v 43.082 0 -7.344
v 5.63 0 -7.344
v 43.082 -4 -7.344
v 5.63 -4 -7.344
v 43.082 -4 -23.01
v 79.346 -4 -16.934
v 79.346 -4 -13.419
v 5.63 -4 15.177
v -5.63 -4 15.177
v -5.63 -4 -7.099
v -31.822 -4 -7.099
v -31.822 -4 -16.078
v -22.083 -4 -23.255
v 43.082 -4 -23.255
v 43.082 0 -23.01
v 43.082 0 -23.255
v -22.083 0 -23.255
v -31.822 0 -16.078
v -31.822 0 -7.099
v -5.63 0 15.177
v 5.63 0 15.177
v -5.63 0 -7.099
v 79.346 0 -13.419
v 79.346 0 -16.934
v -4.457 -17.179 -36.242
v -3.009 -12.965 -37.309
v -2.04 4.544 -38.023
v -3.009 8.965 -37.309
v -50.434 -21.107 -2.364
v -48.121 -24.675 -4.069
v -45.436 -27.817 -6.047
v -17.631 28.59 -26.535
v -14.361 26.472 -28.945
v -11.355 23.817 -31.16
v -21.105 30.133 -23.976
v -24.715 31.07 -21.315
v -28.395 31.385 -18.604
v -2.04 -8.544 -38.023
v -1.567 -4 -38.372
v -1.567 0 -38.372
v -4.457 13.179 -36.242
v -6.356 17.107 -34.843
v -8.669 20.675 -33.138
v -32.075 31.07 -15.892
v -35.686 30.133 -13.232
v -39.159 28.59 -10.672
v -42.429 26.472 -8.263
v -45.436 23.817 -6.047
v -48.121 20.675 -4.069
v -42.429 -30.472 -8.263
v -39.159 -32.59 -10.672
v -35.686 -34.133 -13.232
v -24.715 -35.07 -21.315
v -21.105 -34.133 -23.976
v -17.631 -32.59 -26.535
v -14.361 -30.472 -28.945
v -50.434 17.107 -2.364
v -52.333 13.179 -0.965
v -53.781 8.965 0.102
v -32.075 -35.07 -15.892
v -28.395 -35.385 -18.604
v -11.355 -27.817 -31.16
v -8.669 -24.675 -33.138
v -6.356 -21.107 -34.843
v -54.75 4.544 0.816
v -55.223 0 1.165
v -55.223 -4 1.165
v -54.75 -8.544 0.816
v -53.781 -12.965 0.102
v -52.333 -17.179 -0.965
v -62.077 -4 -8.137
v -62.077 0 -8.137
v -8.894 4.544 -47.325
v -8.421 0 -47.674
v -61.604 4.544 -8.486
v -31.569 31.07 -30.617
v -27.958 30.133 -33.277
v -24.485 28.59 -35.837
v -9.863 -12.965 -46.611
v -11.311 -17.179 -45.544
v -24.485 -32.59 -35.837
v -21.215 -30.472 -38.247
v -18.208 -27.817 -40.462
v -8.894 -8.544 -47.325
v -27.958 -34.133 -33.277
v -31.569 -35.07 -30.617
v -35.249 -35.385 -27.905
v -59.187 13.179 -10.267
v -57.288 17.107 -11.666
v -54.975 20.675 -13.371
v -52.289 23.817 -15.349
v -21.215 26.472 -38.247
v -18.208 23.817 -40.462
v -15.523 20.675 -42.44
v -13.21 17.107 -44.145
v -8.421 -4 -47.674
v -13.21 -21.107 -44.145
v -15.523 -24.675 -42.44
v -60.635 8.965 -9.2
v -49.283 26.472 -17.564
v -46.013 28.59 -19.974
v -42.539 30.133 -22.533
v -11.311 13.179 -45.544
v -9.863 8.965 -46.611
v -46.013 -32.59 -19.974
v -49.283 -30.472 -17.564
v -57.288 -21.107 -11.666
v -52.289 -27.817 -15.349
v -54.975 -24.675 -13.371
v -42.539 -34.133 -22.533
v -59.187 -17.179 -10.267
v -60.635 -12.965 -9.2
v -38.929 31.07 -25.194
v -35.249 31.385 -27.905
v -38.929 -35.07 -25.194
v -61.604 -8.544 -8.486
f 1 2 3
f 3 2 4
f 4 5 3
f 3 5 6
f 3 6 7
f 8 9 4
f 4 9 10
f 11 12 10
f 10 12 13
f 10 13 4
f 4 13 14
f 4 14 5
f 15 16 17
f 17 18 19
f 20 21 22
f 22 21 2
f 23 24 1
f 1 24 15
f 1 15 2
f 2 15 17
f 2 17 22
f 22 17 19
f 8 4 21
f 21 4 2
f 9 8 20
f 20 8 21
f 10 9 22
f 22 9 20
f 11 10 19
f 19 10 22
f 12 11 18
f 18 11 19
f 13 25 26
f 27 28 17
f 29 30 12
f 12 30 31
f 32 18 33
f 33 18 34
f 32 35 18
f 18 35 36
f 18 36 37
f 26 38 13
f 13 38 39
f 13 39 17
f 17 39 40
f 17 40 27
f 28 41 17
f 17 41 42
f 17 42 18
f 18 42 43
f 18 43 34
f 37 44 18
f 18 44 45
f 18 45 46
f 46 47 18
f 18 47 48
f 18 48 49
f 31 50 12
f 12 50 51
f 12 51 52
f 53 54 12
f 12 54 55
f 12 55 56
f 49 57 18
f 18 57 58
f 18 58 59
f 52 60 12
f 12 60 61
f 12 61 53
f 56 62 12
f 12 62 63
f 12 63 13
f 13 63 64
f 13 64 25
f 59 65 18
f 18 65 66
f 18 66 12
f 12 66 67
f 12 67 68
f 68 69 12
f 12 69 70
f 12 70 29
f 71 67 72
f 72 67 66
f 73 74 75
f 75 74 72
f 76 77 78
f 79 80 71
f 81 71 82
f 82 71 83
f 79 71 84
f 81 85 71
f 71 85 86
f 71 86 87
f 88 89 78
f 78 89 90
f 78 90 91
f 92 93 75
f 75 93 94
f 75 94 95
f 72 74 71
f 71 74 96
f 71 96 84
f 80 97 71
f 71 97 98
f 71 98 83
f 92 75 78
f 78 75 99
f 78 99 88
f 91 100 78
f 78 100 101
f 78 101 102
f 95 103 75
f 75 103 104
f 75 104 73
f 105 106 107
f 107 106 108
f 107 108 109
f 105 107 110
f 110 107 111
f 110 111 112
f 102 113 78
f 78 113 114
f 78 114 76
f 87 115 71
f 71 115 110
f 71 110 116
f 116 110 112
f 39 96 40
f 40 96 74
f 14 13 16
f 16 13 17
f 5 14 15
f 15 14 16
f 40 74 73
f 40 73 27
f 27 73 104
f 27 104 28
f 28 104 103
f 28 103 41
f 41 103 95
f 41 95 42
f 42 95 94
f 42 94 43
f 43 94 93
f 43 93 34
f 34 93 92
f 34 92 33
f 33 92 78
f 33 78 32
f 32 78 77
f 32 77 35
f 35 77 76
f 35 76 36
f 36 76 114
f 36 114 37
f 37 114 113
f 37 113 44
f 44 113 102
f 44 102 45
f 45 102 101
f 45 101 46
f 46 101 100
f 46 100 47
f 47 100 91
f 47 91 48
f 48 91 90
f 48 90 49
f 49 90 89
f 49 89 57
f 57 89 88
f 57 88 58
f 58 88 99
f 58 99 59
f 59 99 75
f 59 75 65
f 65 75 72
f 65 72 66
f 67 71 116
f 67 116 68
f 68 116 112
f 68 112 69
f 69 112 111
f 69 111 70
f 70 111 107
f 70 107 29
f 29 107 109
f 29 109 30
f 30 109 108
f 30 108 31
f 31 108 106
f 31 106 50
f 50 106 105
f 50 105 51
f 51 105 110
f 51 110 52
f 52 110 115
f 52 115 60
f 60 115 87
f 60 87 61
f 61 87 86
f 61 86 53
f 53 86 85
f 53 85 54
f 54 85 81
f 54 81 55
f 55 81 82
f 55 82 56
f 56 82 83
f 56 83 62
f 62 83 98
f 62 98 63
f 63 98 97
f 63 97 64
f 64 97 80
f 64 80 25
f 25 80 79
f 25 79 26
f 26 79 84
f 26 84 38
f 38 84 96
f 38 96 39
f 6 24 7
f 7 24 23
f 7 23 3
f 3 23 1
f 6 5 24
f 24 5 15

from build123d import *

# Parameters (mm, degrees)
BOSS_EXTRUDE2_DEPTH = 4
SKETCH2_W           = 66.649543755
SKETCH2_H           = 4
BOSS_EXTRUDE3_DEPTH = 11.554247081
CUT_EXTRUDE1_DEPTH  = 15


with BuildPart() as part:
    # Sketch1 → Boss-Extrude2 (new body)
    with BuildSketch(Plane(origin=(0, 0, 0), x_dir=(1, 0, 0), z_dir=(0, 1, 0))):
        Polygon((-62.077281721, 8.137219556), (-55.223313467, -1.164594503), (-31.821995465, 16.078481919), (-31.821995465, 7.098752834), (-5.630045351, 7.098752834), (-5.630045351, -15.176643991), (5.630045351, -15.176643991), (5.630045351, 7.098752834), (5.630045351, 7.343537415), (43.082086168, 7.343537415), (89.835941043, 7.343537415), (89.835941043, 23.009750567), (43.082086168, 23.009750567), (43.082086168, 23.254535147), (-22.083066084, 23.254535147), (-1.566709209, 38.371850739), (-8.420677463, 47.673664798), align=None)
    extrude(amount=-BOSS_EXTRUDE2_DEPTH)

    # Sketch2 → Boss-Extrude3 (add)
    with BuildSketch(Plane(origin=(-25.730067539, 0, -34.919377374), x_dir=(-0.8050558373533647, 0, 0.5931990380498546), z_dir=(-0.5931990380498546, 0, -0.8050558373533647))):
        with BuildLine():
            Line((-21.500856552, 0), (45.148687203, 0))
            ThreePointArc((45.148687203, 0), (11.823915325, 31.384733348), (-21.500856552, 0))
        make_face()
        with Locations((11.823915325, -2)):
            Rectangle(SKETCH2_W, SKETCH2_H)
        with BuildLine():
            ThreePointArc((-21.500856552, -4), (11.823915325, -35.384733348), (45.148687203, -4))
            Line((45.148687203, -4), (-21.500856552, -4))
        make_face()
    extrude(amount=-BOSS_EXTRUDE3_DEPTH)

    # Sketch3 → Cut-Extrude1 (cut)
    with BuildSketch(Plane.XZ.offset(4)):
        Polygon((79.345991619, -13.419165553), (79.345991619, -16.934122428), (43.082086168, -23.009750567), (79.345991619, -23.009750567), (89.835941043, -23.009750567), (89.835941043, -7.343537415), (79.345991619, -7.343537415), (43.082086168, -7.343537415), align=None)
    extrude(amount=-CUT_EXTRUDE1_DEPTH, mode=Mode.SUBTRACT)


solid = part.part
